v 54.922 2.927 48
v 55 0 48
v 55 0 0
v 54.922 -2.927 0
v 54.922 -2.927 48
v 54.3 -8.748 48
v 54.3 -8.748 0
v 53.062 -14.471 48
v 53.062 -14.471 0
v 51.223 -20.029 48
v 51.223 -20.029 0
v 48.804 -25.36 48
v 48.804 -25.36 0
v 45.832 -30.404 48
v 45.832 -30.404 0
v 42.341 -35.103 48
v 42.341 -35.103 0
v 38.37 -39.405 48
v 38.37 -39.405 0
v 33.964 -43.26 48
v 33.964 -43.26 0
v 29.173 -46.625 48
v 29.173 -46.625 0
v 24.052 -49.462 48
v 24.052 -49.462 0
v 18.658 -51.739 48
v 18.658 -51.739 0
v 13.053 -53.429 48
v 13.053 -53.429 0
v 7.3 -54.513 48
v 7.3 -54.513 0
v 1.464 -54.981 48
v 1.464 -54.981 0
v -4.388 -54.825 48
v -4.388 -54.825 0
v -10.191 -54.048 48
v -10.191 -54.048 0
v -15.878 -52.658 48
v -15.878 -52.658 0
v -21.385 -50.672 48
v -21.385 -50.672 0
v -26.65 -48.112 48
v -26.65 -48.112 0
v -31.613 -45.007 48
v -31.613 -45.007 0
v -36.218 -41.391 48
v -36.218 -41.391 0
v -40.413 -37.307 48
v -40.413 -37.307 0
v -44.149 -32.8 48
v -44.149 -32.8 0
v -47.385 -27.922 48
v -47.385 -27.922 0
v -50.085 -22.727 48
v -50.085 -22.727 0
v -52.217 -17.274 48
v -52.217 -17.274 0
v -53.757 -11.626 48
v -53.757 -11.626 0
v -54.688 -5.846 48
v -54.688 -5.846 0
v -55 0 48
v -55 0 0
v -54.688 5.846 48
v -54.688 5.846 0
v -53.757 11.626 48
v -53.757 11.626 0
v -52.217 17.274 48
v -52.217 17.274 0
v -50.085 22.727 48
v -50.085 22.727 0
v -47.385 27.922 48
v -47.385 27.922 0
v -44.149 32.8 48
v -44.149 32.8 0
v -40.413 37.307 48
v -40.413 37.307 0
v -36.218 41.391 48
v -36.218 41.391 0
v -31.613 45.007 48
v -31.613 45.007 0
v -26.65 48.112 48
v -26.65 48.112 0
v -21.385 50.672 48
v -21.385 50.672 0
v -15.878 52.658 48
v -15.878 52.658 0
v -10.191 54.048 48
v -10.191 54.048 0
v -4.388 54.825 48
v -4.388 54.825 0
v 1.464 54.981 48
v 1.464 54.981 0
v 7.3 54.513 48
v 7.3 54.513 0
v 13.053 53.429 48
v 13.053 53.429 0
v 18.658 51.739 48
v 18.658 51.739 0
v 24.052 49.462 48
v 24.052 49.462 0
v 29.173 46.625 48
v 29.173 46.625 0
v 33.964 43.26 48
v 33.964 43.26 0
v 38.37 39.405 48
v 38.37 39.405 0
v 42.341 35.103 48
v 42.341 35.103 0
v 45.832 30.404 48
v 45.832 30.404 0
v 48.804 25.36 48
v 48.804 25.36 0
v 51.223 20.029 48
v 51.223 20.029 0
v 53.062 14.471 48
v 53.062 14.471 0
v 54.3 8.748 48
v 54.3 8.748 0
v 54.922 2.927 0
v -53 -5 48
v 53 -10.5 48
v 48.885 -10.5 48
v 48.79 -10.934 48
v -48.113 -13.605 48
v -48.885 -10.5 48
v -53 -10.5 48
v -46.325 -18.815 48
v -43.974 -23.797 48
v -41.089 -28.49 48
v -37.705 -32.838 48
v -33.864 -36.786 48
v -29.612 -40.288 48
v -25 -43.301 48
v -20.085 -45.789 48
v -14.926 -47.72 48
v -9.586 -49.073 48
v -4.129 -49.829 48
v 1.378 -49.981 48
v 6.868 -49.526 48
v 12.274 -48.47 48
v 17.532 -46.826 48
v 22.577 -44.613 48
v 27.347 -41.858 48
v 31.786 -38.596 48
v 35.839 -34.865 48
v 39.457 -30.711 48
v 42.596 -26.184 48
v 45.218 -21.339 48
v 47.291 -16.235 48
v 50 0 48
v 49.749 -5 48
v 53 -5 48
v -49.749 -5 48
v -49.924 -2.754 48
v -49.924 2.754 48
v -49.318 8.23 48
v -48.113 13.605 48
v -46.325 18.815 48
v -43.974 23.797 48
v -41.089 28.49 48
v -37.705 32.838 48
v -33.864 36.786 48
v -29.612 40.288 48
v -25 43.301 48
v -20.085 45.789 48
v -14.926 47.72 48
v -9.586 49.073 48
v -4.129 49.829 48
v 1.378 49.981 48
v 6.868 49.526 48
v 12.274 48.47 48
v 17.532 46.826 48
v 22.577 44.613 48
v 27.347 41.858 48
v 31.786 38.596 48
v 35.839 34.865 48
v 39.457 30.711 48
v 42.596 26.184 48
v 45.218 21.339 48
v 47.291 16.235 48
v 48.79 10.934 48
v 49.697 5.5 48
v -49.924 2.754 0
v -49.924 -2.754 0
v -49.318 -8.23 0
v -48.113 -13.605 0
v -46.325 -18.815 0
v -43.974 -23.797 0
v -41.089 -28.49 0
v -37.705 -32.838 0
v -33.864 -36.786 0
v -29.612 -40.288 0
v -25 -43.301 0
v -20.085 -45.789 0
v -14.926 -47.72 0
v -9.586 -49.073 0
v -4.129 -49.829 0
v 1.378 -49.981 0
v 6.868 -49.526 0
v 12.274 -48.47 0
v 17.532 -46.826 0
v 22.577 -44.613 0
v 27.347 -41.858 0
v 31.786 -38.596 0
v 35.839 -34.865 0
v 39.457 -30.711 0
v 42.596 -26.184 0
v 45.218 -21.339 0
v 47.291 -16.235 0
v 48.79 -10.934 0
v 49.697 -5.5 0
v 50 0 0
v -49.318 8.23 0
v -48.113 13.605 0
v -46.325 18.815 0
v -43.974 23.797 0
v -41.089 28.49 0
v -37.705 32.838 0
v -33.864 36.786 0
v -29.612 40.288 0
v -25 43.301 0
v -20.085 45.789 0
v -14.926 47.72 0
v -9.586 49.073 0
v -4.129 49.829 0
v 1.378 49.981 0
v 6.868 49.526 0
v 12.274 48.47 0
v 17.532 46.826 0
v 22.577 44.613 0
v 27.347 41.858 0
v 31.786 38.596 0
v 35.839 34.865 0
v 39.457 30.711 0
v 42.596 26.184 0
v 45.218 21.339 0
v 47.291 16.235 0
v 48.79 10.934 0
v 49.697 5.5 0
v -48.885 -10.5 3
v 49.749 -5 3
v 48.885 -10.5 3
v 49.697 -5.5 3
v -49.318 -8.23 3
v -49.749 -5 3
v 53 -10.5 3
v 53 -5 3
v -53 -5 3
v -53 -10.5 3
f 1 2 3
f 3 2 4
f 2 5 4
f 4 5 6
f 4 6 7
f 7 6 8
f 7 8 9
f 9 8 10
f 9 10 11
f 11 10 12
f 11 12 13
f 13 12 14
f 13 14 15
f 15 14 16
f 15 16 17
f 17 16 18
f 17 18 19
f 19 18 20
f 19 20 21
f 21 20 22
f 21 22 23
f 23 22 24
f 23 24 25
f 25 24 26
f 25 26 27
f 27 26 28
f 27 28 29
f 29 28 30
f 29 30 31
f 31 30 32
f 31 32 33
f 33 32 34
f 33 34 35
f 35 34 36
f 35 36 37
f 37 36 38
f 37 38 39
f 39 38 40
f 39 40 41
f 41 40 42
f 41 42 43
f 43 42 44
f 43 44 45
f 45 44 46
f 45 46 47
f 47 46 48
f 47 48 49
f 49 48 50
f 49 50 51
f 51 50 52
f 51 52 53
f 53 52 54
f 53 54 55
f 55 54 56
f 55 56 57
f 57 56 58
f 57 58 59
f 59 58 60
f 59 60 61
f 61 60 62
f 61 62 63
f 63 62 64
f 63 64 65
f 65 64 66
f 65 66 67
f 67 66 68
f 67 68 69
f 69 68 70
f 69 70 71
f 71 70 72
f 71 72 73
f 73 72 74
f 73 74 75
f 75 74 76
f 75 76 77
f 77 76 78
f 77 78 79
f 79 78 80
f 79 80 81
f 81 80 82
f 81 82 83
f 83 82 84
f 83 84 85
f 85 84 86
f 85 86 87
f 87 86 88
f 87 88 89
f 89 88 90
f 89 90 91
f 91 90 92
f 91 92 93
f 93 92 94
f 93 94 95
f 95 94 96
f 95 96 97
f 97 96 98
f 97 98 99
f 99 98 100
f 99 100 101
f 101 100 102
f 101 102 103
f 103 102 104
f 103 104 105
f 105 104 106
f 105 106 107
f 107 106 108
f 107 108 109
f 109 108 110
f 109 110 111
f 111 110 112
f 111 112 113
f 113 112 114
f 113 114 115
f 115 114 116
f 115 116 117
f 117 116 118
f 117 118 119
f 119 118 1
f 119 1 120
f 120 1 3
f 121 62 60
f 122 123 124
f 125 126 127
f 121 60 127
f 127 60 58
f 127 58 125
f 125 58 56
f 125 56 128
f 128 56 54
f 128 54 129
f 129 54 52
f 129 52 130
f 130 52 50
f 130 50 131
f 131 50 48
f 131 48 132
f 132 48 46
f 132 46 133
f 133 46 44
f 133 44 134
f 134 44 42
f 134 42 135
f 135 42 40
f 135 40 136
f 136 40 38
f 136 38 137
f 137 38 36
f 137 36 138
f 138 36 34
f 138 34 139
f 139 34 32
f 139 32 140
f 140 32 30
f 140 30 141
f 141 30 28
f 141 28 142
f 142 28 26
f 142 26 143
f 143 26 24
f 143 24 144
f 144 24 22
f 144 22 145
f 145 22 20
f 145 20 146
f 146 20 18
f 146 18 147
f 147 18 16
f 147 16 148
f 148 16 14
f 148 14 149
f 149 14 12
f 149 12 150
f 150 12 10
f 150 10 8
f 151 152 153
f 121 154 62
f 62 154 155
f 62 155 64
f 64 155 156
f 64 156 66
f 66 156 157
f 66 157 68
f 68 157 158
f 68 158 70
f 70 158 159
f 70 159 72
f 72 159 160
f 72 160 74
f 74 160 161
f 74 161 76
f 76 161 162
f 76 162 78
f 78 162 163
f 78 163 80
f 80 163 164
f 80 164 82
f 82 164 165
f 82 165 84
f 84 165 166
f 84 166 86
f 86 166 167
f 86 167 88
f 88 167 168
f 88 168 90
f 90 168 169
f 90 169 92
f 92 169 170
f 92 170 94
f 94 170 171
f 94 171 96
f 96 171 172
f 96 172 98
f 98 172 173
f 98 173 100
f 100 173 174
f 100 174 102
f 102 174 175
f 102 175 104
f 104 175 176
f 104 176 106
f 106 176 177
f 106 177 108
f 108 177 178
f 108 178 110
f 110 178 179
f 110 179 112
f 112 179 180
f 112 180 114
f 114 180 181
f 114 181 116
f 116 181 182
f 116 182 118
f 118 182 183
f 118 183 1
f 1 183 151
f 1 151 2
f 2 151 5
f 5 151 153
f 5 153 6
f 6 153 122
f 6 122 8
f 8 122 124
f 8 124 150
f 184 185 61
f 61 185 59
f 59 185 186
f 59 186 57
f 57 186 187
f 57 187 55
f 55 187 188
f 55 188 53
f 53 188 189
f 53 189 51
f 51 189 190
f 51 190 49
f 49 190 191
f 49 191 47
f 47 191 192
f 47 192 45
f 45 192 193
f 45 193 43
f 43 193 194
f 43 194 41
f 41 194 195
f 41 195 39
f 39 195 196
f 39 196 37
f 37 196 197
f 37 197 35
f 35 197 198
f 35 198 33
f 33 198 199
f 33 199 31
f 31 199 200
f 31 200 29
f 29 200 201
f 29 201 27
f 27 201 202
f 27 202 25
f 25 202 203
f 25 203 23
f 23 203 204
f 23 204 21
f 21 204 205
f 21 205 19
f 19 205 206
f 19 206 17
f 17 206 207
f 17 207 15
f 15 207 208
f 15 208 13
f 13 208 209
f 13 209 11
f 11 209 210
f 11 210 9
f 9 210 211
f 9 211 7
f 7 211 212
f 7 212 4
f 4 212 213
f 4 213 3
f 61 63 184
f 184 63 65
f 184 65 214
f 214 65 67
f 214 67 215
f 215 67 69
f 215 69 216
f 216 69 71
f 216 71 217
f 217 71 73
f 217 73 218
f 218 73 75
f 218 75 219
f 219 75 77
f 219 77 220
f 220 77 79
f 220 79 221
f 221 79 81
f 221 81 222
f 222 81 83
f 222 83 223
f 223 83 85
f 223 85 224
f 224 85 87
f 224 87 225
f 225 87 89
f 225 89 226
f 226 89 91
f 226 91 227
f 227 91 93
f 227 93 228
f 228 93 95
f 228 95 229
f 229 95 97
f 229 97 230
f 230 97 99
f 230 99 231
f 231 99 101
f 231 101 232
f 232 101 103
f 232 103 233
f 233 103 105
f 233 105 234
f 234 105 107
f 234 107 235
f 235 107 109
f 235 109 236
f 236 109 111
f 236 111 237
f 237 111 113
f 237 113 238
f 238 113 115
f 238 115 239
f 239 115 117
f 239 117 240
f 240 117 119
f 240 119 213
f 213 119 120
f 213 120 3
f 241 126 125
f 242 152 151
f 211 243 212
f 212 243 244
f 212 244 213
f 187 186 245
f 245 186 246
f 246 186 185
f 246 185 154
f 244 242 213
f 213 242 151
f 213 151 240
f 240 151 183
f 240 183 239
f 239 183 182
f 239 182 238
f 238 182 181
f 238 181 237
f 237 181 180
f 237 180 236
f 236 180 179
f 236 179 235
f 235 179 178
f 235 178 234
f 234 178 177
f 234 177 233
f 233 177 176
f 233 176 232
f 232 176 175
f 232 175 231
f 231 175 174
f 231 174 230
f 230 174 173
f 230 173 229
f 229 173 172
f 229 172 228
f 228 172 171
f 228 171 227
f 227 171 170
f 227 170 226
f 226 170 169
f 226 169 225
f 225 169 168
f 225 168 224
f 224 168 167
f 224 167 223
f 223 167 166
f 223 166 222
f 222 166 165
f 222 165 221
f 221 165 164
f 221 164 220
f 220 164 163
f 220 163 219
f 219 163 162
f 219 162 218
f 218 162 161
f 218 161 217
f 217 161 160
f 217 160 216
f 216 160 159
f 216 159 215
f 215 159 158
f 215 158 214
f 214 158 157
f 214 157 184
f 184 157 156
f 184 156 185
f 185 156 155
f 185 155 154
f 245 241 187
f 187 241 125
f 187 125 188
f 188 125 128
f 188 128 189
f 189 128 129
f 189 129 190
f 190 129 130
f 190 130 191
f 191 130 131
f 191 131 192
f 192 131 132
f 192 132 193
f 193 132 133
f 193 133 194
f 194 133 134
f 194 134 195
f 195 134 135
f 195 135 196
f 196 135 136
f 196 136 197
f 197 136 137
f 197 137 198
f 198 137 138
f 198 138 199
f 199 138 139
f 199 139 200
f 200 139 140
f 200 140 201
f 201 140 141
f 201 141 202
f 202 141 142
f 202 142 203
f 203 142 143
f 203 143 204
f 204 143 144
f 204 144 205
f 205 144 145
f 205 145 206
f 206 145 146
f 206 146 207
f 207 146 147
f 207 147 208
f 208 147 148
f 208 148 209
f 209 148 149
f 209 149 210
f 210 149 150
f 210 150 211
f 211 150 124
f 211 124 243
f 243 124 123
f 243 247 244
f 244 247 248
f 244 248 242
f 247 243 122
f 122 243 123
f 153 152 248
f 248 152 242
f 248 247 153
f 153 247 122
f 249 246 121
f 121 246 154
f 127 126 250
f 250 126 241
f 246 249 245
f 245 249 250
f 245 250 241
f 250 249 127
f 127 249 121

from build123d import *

# Parameters (mm, degrees)
SKETCH1_R           = 55
BOSS_EXTRUDE1_DEPTH = 48
SKETCH2_R           = 50
CUT_EXTRUDE1_DEPTH  = 49
SKETCH5_W           = 106
SKETCH5_H           = 5.5
CUT_EXTRUDE2_DEPTH  = 45


with BuildPart() as part:
    # Sketch1 → Boss-Extrude1 (new body)
    with BuildSketch(Plane.XY):
        Circle(SKETCH1_R)
    extrude(amount=BOSS_EXTRUDE1_DEPTH)

    # Sketch2 → Cut-Extrude1 (cut, through all)
    with BuildSketch(Plane.XY.offset(48)):
        Circle(SKETCH2_R)
    extrude(amount=-CUT_EXTRUDE1_DEPTH, mode=Mode.SUBTRACT)

    # Sketch5 → Cut-Extrude2 (cut)
    with BuildSketch(Plane.XY.offset(48)):
        with Locations((0, -7.75)):
            Rectangle(SKETCH5_W, SKETCH5_H)
    extrude(amount=-CUT_EXTRUDE2_DEPTH, mode=Mode.SUBTRACT)


solid = part.part
